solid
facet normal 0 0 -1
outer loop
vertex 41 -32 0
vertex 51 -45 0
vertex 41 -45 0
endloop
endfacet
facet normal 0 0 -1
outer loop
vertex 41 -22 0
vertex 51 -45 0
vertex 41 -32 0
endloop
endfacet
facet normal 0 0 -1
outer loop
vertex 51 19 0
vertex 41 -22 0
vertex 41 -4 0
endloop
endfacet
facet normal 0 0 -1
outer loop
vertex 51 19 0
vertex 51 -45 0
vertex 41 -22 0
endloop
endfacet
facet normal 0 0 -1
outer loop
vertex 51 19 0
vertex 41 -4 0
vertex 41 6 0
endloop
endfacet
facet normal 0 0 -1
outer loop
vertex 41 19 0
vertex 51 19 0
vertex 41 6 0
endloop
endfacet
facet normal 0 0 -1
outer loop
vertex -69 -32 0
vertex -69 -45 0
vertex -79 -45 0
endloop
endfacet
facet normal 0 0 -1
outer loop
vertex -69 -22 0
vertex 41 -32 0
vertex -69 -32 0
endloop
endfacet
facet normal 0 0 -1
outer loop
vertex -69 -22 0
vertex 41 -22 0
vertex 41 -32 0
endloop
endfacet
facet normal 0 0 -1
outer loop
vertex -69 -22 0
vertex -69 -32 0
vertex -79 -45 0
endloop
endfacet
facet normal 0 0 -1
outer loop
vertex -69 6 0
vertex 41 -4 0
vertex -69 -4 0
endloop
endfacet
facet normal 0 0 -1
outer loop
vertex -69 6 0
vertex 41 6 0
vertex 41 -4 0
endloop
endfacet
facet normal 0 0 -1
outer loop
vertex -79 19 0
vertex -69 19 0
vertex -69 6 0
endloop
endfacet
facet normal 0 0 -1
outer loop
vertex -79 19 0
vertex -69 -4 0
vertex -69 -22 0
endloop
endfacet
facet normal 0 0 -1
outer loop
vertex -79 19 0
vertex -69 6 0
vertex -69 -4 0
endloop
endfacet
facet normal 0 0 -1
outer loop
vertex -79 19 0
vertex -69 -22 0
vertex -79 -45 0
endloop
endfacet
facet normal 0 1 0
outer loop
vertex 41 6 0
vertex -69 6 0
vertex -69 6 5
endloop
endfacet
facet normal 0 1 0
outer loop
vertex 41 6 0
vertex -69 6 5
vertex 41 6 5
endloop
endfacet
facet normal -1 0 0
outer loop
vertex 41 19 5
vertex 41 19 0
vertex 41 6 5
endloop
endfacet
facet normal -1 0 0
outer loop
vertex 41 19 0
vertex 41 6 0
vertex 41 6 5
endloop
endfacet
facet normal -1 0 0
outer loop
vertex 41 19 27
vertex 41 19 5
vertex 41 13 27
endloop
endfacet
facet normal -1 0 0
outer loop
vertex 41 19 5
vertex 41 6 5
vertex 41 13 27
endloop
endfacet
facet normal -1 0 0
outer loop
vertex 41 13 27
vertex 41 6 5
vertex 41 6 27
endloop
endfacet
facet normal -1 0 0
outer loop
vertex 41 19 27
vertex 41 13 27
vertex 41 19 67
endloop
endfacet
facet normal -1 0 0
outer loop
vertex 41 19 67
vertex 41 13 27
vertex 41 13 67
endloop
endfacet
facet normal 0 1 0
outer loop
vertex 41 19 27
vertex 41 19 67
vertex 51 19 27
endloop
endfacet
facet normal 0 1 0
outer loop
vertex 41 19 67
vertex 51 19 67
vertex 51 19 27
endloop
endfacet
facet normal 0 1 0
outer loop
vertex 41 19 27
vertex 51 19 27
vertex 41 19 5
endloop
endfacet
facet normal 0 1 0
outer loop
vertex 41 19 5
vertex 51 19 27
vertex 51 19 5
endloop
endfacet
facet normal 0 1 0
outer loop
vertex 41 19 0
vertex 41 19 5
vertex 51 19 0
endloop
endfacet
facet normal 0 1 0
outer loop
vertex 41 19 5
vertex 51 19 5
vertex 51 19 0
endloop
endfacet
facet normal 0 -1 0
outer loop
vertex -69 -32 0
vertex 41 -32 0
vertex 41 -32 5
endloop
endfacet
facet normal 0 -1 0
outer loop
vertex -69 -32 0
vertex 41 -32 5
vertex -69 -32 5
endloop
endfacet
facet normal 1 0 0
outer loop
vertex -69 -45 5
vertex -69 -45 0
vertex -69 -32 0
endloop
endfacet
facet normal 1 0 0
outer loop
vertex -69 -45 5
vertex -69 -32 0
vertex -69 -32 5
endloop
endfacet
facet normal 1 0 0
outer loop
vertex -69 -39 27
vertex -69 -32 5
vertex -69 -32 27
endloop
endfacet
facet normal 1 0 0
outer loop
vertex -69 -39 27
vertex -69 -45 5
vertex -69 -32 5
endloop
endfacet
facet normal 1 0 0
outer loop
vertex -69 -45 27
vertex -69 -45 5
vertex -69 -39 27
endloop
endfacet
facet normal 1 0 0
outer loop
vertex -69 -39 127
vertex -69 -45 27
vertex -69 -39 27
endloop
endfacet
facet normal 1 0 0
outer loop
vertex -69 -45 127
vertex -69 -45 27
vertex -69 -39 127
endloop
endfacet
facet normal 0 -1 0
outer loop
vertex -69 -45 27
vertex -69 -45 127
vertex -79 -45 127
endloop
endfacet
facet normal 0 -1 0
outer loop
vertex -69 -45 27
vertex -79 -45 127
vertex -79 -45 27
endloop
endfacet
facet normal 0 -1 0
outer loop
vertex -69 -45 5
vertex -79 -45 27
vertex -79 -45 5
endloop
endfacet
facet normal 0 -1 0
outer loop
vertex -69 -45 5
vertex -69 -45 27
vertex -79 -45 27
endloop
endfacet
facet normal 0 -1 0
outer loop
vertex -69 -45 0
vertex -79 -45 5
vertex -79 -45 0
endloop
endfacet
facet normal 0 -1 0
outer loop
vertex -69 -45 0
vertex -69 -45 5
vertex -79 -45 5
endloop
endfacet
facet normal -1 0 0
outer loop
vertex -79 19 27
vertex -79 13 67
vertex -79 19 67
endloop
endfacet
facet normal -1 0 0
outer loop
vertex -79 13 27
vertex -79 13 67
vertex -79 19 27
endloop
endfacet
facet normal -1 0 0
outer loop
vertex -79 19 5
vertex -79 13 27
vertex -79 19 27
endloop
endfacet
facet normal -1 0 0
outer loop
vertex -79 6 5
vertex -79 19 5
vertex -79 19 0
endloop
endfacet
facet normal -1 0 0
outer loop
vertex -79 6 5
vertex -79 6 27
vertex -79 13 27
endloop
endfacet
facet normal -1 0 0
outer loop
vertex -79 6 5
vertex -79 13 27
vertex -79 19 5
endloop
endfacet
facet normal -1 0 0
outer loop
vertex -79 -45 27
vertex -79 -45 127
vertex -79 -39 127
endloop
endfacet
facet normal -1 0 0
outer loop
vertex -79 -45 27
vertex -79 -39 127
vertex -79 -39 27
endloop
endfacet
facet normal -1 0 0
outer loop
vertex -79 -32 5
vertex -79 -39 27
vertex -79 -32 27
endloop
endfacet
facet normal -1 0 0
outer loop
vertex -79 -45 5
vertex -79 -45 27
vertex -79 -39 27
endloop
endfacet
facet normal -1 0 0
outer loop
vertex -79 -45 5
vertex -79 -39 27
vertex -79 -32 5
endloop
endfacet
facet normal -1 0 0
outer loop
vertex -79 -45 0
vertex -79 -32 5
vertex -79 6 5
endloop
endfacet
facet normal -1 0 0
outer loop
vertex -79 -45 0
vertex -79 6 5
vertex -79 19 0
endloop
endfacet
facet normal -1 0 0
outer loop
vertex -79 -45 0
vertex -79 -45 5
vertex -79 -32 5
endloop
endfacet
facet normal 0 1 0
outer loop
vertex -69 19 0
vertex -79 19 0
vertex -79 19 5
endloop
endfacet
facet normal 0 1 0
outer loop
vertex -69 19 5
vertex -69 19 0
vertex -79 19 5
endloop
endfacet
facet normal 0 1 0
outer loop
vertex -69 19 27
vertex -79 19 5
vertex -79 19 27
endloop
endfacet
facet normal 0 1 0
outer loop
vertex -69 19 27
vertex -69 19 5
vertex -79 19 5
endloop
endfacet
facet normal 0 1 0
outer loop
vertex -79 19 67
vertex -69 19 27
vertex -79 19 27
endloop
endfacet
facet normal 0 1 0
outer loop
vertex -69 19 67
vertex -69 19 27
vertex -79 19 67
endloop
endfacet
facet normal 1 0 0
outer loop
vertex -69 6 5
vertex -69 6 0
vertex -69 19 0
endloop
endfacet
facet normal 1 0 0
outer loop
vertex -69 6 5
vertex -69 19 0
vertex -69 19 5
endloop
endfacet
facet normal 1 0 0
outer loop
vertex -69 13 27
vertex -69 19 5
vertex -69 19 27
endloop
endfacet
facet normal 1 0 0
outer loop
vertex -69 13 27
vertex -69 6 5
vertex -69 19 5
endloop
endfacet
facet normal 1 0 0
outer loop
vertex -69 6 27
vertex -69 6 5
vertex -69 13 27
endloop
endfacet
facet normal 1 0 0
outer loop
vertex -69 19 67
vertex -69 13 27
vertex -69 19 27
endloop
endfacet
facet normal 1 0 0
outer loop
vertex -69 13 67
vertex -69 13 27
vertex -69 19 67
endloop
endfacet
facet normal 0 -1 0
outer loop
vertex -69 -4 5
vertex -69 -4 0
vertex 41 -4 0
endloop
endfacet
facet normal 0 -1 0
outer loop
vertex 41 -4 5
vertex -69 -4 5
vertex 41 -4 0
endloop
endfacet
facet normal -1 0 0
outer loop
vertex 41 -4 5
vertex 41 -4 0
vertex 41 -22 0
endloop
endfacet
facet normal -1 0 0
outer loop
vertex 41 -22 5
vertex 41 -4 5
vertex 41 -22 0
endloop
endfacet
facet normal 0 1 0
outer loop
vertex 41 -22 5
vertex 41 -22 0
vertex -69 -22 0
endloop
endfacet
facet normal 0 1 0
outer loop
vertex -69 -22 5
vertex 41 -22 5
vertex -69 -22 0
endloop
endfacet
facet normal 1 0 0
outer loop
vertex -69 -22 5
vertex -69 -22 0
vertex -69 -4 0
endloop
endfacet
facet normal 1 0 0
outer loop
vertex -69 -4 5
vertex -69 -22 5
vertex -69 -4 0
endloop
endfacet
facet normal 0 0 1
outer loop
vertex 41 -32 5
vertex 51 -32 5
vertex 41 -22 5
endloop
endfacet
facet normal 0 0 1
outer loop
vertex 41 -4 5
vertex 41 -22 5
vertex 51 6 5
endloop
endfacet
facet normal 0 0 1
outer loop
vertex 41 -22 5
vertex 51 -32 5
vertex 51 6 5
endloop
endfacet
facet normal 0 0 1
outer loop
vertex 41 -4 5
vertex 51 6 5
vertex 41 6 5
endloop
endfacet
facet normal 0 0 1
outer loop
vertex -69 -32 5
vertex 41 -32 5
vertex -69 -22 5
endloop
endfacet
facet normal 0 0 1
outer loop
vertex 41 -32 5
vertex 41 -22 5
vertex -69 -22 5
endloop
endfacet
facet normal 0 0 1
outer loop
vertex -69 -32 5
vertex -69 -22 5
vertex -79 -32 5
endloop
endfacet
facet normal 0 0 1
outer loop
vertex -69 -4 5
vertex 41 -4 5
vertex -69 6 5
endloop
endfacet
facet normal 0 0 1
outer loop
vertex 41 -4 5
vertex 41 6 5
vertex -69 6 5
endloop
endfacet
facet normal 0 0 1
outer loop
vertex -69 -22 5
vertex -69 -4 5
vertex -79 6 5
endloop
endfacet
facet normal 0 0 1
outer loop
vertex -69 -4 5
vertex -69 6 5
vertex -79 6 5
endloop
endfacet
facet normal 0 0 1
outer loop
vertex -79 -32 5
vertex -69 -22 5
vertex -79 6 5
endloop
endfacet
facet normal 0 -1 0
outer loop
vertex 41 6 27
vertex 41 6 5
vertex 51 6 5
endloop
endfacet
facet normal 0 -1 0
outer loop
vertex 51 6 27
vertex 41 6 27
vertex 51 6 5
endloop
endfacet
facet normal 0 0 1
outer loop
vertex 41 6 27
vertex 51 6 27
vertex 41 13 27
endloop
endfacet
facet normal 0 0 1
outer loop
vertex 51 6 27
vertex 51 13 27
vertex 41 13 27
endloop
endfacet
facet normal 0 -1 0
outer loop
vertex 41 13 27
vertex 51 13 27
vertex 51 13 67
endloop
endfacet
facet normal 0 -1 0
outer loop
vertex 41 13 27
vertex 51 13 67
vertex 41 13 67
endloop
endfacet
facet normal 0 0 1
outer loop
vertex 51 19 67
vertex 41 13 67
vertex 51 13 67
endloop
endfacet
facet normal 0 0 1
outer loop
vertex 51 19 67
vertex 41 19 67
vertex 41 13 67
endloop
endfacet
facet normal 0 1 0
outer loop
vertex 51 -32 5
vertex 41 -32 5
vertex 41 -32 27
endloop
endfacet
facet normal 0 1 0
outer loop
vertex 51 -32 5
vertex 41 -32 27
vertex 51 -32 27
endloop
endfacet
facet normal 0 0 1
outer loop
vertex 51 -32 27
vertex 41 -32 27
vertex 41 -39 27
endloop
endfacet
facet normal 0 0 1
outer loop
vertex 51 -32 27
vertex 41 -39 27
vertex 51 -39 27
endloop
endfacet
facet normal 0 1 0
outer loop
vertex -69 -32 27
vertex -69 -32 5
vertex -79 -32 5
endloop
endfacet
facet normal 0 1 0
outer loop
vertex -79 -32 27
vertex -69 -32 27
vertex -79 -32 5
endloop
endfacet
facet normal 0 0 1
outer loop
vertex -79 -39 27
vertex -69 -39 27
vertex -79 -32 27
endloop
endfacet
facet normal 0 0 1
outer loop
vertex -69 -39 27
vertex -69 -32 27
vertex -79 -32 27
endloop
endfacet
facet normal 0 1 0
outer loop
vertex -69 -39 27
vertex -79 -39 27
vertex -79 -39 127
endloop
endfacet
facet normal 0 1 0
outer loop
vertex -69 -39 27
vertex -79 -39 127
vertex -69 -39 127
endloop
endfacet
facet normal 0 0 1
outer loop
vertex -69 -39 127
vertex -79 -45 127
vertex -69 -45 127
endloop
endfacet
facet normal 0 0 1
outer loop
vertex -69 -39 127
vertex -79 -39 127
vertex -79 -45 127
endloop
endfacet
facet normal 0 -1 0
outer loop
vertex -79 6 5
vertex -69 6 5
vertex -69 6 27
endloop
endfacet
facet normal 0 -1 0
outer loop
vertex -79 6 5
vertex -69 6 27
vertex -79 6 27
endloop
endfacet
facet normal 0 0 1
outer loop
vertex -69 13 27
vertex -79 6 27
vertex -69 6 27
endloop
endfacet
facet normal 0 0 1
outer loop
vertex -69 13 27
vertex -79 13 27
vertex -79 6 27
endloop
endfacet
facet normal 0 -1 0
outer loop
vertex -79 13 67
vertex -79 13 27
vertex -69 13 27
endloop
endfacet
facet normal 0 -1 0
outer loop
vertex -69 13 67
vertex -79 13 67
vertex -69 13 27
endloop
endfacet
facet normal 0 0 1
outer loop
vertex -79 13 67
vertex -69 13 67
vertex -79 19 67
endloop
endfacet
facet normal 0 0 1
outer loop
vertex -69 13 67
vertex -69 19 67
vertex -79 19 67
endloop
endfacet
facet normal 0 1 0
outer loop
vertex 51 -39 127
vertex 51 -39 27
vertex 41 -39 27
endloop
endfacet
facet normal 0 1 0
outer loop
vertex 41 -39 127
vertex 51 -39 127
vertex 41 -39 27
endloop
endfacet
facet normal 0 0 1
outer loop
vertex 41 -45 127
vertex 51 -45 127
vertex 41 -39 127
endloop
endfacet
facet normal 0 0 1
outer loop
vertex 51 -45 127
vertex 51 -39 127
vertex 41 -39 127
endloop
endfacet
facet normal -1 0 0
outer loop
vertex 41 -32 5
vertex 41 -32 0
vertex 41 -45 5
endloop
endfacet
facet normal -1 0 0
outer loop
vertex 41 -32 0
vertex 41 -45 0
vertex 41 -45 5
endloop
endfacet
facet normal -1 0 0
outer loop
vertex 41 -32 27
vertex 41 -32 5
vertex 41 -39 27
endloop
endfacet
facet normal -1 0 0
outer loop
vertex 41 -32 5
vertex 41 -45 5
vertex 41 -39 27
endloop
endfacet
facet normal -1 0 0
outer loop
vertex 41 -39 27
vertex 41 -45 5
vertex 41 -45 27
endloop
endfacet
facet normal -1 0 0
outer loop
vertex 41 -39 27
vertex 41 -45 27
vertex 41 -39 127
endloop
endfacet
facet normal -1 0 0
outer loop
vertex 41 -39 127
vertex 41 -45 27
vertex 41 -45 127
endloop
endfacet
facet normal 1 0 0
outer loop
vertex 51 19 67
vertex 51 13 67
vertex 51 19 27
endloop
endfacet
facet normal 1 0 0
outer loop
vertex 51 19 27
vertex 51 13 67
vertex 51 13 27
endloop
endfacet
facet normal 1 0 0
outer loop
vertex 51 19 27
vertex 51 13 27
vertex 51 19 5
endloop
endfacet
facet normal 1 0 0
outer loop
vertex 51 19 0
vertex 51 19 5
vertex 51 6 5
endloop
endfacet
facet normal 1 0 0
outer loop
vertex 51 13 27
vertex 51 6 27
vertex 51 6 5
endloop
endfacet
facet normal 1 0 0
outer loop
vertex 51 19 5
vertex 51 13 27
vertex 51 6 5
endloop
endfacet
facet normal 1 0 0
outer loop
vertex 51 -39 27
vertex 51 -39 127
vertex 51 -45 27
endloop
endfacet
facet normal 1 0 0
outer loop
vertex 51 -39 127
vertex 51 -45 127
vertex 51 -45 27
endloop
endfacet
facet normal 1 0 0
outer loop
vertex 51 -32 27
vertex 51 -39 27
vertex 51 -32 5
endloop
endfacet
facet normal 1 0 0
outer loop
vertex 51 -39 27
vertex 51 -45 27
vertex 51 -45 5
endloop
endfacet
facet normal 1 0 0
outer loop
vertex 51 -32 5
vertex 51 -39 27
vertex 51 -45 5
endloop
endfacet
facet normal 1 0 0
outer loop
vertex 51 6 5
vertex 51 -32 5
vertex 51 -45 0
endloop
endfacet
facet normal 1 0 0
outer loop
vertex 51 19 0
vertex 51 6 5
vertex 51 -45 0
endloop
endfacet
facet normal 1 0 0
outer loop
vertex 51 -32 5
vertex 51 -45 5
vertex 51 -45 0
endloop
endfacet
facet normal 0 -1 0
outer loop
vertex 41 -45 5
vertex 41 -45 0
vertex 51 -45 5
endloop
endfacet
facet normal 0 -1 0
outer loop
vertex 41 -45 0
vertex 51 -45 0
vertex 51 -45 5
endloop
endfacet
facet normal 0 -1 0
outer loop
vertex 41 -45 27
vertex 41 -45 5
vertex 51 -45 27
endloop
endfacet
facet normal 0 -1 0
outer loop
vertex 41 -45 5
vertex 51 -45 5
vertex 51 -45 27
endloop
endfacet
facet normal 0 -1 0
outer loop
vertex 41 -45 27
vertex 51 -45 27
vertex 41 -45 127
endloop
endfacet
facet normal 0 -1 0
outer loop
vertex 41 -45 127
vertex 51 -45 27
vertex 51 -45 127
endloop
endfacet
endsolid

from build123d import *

# Parameters (mm, degrees)
SKETCH_W     = 110
SKETCH_H     = 18
PAD_DEPTH    = 5
SKETCH001_W  = 10
SKETCH001_H  = 13
PAD001_DEPTH = 22
SKETCH002_W  = 10
SKETCH002_H  = 6
PAD002_DEPTH = 40
SKETCH003_W  = 10
SKETCH003_H  = 6
PAD003_DEPTH = 100


with BuildPart() as part:
    # Sketch → Pad (new body)
    with BuildSketch(Plane(origin=(-14, -13, 0), x_dir=(1, 0, 0), z_dir=(0, 0, 1))):
        Polygon((-55, 19), (55, 19), (55, 32), (65, 32), (65, -32), (55, -32), (55, -19), (-55, -19), (-55, -32), (-65, -32), (-65, 32), (-55, 32), align=None)
        Rectangle(SKETCH_W, SKETCH_H, mode=Mode.SUBTRACT)
    extrude(amount=PAD_DEPTH)

    # Sketch001 → Pad001 (new body)
    with BuildSketch(Plane(origin=(-14, -13, 5), x_dir=(1, 0, 0), z_dir=(0, 0, 1))):
        with Locations((-60, 25.5)):
            Rectangle(SKETCH001_W, SKETCH001_H)
        with Locations((-60, -25.5)):
            Rectangle(SKETCH001_W, SKETCH001_H)
        with Locations((60, 25.5)):
            Rectangle(SKETCH001_W, SKETCH001_H)
        with Locations((60, -25.5)):
            Rectangle(SKETCH001_W, SKETCH001_H)
    extrude(amount=PAD001_DEPTH)

    # Sketch002 → Pad002 (new body)
    with BuildSketch(Plane(origin=(-14, -13, 27), x_dir=(1, 0, 0), z_dir=(0, 0, 1))):
        with Locations((-60, 29)):
            Rectangle(SKETCH002_W, SKETCH002_H)
    pad002 = extrude(amount=PAD002_DEPTH)

    # Mirrored: Pad002 across Sketch002 V_Axis
    add(pad002.mirror(Plane(origin=(-14, -13, 27), x_dir=(0, 0, 1), z_dir=(1, 0, 0))))

    # Sketch003 → Pad003 (new body)
    with BuildSketch(Plane(origin=(-14, -13, 27), x_dir=(1, 0, 0), z_dir=(0, 0, 1))):
        with Locations((-60, -29)):
            Rectangle(SKETCH003_W, SKETCH003_H)
    pad003 = extrude(amount=PAD003_DEPTH)

    # Mirrored001: Pad003 across Sketch003 V_Axis
    add(pad003.mirror(Plane(origin=(-14, -13, 27), x_dir=(0, 0, 1), z_dir=(1, 0, 0))))


solid = part.part
